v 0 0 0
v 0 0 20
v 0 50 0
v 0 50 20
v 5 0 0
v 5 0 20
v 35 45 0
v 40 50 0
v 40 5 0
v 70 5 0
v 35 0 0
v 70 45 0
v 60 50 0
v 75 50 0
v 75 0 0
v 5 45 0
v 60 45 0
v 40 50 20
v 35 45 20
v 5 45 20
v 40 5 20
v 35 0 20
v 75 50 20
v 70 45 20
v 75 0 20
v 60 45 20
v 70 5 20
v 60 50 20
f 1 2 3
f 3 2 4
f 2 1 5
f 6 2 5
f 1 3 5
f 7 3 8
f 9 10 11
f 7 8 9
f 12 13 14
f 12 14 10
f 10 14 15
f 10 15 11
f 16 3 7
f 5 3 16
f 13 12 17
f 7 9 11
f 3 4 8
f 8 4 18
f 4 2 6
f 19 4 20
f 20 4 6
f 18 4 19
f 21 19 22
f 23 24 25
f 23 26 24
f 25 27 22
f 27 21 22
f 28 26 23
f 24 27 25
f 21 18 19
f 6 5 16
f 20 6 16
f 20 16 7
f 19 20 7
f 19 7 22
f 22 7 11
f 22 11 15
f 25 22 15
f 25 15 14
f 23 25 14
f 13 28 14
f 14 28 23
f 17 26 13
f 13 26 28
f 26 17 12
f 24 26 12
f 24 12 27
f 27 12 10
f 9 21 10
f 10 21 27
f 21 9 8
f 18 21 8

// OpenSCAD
height=20;
thick=5;
union() {
cube(size=[thick,50,height],center=false);
translate(v = [thick, 50-thick, 0])
cube(size=[30,thick,height], center=false);
translate(v = [thick+30, 0, 0])
cube(size=[thick,50,height],center=false);
translate(v = [thick+30+thick, 0, 0])
cube(size=[30,thick,height],center=false);
translate(v = [thick+30+thick+30, 0, 0])
cube(size=[thick,50,height],center=false);
translate(v = [thick+30+thick+30-10, 50-thick, 0])
cube(size=[10,thick,height],center=false);
}
